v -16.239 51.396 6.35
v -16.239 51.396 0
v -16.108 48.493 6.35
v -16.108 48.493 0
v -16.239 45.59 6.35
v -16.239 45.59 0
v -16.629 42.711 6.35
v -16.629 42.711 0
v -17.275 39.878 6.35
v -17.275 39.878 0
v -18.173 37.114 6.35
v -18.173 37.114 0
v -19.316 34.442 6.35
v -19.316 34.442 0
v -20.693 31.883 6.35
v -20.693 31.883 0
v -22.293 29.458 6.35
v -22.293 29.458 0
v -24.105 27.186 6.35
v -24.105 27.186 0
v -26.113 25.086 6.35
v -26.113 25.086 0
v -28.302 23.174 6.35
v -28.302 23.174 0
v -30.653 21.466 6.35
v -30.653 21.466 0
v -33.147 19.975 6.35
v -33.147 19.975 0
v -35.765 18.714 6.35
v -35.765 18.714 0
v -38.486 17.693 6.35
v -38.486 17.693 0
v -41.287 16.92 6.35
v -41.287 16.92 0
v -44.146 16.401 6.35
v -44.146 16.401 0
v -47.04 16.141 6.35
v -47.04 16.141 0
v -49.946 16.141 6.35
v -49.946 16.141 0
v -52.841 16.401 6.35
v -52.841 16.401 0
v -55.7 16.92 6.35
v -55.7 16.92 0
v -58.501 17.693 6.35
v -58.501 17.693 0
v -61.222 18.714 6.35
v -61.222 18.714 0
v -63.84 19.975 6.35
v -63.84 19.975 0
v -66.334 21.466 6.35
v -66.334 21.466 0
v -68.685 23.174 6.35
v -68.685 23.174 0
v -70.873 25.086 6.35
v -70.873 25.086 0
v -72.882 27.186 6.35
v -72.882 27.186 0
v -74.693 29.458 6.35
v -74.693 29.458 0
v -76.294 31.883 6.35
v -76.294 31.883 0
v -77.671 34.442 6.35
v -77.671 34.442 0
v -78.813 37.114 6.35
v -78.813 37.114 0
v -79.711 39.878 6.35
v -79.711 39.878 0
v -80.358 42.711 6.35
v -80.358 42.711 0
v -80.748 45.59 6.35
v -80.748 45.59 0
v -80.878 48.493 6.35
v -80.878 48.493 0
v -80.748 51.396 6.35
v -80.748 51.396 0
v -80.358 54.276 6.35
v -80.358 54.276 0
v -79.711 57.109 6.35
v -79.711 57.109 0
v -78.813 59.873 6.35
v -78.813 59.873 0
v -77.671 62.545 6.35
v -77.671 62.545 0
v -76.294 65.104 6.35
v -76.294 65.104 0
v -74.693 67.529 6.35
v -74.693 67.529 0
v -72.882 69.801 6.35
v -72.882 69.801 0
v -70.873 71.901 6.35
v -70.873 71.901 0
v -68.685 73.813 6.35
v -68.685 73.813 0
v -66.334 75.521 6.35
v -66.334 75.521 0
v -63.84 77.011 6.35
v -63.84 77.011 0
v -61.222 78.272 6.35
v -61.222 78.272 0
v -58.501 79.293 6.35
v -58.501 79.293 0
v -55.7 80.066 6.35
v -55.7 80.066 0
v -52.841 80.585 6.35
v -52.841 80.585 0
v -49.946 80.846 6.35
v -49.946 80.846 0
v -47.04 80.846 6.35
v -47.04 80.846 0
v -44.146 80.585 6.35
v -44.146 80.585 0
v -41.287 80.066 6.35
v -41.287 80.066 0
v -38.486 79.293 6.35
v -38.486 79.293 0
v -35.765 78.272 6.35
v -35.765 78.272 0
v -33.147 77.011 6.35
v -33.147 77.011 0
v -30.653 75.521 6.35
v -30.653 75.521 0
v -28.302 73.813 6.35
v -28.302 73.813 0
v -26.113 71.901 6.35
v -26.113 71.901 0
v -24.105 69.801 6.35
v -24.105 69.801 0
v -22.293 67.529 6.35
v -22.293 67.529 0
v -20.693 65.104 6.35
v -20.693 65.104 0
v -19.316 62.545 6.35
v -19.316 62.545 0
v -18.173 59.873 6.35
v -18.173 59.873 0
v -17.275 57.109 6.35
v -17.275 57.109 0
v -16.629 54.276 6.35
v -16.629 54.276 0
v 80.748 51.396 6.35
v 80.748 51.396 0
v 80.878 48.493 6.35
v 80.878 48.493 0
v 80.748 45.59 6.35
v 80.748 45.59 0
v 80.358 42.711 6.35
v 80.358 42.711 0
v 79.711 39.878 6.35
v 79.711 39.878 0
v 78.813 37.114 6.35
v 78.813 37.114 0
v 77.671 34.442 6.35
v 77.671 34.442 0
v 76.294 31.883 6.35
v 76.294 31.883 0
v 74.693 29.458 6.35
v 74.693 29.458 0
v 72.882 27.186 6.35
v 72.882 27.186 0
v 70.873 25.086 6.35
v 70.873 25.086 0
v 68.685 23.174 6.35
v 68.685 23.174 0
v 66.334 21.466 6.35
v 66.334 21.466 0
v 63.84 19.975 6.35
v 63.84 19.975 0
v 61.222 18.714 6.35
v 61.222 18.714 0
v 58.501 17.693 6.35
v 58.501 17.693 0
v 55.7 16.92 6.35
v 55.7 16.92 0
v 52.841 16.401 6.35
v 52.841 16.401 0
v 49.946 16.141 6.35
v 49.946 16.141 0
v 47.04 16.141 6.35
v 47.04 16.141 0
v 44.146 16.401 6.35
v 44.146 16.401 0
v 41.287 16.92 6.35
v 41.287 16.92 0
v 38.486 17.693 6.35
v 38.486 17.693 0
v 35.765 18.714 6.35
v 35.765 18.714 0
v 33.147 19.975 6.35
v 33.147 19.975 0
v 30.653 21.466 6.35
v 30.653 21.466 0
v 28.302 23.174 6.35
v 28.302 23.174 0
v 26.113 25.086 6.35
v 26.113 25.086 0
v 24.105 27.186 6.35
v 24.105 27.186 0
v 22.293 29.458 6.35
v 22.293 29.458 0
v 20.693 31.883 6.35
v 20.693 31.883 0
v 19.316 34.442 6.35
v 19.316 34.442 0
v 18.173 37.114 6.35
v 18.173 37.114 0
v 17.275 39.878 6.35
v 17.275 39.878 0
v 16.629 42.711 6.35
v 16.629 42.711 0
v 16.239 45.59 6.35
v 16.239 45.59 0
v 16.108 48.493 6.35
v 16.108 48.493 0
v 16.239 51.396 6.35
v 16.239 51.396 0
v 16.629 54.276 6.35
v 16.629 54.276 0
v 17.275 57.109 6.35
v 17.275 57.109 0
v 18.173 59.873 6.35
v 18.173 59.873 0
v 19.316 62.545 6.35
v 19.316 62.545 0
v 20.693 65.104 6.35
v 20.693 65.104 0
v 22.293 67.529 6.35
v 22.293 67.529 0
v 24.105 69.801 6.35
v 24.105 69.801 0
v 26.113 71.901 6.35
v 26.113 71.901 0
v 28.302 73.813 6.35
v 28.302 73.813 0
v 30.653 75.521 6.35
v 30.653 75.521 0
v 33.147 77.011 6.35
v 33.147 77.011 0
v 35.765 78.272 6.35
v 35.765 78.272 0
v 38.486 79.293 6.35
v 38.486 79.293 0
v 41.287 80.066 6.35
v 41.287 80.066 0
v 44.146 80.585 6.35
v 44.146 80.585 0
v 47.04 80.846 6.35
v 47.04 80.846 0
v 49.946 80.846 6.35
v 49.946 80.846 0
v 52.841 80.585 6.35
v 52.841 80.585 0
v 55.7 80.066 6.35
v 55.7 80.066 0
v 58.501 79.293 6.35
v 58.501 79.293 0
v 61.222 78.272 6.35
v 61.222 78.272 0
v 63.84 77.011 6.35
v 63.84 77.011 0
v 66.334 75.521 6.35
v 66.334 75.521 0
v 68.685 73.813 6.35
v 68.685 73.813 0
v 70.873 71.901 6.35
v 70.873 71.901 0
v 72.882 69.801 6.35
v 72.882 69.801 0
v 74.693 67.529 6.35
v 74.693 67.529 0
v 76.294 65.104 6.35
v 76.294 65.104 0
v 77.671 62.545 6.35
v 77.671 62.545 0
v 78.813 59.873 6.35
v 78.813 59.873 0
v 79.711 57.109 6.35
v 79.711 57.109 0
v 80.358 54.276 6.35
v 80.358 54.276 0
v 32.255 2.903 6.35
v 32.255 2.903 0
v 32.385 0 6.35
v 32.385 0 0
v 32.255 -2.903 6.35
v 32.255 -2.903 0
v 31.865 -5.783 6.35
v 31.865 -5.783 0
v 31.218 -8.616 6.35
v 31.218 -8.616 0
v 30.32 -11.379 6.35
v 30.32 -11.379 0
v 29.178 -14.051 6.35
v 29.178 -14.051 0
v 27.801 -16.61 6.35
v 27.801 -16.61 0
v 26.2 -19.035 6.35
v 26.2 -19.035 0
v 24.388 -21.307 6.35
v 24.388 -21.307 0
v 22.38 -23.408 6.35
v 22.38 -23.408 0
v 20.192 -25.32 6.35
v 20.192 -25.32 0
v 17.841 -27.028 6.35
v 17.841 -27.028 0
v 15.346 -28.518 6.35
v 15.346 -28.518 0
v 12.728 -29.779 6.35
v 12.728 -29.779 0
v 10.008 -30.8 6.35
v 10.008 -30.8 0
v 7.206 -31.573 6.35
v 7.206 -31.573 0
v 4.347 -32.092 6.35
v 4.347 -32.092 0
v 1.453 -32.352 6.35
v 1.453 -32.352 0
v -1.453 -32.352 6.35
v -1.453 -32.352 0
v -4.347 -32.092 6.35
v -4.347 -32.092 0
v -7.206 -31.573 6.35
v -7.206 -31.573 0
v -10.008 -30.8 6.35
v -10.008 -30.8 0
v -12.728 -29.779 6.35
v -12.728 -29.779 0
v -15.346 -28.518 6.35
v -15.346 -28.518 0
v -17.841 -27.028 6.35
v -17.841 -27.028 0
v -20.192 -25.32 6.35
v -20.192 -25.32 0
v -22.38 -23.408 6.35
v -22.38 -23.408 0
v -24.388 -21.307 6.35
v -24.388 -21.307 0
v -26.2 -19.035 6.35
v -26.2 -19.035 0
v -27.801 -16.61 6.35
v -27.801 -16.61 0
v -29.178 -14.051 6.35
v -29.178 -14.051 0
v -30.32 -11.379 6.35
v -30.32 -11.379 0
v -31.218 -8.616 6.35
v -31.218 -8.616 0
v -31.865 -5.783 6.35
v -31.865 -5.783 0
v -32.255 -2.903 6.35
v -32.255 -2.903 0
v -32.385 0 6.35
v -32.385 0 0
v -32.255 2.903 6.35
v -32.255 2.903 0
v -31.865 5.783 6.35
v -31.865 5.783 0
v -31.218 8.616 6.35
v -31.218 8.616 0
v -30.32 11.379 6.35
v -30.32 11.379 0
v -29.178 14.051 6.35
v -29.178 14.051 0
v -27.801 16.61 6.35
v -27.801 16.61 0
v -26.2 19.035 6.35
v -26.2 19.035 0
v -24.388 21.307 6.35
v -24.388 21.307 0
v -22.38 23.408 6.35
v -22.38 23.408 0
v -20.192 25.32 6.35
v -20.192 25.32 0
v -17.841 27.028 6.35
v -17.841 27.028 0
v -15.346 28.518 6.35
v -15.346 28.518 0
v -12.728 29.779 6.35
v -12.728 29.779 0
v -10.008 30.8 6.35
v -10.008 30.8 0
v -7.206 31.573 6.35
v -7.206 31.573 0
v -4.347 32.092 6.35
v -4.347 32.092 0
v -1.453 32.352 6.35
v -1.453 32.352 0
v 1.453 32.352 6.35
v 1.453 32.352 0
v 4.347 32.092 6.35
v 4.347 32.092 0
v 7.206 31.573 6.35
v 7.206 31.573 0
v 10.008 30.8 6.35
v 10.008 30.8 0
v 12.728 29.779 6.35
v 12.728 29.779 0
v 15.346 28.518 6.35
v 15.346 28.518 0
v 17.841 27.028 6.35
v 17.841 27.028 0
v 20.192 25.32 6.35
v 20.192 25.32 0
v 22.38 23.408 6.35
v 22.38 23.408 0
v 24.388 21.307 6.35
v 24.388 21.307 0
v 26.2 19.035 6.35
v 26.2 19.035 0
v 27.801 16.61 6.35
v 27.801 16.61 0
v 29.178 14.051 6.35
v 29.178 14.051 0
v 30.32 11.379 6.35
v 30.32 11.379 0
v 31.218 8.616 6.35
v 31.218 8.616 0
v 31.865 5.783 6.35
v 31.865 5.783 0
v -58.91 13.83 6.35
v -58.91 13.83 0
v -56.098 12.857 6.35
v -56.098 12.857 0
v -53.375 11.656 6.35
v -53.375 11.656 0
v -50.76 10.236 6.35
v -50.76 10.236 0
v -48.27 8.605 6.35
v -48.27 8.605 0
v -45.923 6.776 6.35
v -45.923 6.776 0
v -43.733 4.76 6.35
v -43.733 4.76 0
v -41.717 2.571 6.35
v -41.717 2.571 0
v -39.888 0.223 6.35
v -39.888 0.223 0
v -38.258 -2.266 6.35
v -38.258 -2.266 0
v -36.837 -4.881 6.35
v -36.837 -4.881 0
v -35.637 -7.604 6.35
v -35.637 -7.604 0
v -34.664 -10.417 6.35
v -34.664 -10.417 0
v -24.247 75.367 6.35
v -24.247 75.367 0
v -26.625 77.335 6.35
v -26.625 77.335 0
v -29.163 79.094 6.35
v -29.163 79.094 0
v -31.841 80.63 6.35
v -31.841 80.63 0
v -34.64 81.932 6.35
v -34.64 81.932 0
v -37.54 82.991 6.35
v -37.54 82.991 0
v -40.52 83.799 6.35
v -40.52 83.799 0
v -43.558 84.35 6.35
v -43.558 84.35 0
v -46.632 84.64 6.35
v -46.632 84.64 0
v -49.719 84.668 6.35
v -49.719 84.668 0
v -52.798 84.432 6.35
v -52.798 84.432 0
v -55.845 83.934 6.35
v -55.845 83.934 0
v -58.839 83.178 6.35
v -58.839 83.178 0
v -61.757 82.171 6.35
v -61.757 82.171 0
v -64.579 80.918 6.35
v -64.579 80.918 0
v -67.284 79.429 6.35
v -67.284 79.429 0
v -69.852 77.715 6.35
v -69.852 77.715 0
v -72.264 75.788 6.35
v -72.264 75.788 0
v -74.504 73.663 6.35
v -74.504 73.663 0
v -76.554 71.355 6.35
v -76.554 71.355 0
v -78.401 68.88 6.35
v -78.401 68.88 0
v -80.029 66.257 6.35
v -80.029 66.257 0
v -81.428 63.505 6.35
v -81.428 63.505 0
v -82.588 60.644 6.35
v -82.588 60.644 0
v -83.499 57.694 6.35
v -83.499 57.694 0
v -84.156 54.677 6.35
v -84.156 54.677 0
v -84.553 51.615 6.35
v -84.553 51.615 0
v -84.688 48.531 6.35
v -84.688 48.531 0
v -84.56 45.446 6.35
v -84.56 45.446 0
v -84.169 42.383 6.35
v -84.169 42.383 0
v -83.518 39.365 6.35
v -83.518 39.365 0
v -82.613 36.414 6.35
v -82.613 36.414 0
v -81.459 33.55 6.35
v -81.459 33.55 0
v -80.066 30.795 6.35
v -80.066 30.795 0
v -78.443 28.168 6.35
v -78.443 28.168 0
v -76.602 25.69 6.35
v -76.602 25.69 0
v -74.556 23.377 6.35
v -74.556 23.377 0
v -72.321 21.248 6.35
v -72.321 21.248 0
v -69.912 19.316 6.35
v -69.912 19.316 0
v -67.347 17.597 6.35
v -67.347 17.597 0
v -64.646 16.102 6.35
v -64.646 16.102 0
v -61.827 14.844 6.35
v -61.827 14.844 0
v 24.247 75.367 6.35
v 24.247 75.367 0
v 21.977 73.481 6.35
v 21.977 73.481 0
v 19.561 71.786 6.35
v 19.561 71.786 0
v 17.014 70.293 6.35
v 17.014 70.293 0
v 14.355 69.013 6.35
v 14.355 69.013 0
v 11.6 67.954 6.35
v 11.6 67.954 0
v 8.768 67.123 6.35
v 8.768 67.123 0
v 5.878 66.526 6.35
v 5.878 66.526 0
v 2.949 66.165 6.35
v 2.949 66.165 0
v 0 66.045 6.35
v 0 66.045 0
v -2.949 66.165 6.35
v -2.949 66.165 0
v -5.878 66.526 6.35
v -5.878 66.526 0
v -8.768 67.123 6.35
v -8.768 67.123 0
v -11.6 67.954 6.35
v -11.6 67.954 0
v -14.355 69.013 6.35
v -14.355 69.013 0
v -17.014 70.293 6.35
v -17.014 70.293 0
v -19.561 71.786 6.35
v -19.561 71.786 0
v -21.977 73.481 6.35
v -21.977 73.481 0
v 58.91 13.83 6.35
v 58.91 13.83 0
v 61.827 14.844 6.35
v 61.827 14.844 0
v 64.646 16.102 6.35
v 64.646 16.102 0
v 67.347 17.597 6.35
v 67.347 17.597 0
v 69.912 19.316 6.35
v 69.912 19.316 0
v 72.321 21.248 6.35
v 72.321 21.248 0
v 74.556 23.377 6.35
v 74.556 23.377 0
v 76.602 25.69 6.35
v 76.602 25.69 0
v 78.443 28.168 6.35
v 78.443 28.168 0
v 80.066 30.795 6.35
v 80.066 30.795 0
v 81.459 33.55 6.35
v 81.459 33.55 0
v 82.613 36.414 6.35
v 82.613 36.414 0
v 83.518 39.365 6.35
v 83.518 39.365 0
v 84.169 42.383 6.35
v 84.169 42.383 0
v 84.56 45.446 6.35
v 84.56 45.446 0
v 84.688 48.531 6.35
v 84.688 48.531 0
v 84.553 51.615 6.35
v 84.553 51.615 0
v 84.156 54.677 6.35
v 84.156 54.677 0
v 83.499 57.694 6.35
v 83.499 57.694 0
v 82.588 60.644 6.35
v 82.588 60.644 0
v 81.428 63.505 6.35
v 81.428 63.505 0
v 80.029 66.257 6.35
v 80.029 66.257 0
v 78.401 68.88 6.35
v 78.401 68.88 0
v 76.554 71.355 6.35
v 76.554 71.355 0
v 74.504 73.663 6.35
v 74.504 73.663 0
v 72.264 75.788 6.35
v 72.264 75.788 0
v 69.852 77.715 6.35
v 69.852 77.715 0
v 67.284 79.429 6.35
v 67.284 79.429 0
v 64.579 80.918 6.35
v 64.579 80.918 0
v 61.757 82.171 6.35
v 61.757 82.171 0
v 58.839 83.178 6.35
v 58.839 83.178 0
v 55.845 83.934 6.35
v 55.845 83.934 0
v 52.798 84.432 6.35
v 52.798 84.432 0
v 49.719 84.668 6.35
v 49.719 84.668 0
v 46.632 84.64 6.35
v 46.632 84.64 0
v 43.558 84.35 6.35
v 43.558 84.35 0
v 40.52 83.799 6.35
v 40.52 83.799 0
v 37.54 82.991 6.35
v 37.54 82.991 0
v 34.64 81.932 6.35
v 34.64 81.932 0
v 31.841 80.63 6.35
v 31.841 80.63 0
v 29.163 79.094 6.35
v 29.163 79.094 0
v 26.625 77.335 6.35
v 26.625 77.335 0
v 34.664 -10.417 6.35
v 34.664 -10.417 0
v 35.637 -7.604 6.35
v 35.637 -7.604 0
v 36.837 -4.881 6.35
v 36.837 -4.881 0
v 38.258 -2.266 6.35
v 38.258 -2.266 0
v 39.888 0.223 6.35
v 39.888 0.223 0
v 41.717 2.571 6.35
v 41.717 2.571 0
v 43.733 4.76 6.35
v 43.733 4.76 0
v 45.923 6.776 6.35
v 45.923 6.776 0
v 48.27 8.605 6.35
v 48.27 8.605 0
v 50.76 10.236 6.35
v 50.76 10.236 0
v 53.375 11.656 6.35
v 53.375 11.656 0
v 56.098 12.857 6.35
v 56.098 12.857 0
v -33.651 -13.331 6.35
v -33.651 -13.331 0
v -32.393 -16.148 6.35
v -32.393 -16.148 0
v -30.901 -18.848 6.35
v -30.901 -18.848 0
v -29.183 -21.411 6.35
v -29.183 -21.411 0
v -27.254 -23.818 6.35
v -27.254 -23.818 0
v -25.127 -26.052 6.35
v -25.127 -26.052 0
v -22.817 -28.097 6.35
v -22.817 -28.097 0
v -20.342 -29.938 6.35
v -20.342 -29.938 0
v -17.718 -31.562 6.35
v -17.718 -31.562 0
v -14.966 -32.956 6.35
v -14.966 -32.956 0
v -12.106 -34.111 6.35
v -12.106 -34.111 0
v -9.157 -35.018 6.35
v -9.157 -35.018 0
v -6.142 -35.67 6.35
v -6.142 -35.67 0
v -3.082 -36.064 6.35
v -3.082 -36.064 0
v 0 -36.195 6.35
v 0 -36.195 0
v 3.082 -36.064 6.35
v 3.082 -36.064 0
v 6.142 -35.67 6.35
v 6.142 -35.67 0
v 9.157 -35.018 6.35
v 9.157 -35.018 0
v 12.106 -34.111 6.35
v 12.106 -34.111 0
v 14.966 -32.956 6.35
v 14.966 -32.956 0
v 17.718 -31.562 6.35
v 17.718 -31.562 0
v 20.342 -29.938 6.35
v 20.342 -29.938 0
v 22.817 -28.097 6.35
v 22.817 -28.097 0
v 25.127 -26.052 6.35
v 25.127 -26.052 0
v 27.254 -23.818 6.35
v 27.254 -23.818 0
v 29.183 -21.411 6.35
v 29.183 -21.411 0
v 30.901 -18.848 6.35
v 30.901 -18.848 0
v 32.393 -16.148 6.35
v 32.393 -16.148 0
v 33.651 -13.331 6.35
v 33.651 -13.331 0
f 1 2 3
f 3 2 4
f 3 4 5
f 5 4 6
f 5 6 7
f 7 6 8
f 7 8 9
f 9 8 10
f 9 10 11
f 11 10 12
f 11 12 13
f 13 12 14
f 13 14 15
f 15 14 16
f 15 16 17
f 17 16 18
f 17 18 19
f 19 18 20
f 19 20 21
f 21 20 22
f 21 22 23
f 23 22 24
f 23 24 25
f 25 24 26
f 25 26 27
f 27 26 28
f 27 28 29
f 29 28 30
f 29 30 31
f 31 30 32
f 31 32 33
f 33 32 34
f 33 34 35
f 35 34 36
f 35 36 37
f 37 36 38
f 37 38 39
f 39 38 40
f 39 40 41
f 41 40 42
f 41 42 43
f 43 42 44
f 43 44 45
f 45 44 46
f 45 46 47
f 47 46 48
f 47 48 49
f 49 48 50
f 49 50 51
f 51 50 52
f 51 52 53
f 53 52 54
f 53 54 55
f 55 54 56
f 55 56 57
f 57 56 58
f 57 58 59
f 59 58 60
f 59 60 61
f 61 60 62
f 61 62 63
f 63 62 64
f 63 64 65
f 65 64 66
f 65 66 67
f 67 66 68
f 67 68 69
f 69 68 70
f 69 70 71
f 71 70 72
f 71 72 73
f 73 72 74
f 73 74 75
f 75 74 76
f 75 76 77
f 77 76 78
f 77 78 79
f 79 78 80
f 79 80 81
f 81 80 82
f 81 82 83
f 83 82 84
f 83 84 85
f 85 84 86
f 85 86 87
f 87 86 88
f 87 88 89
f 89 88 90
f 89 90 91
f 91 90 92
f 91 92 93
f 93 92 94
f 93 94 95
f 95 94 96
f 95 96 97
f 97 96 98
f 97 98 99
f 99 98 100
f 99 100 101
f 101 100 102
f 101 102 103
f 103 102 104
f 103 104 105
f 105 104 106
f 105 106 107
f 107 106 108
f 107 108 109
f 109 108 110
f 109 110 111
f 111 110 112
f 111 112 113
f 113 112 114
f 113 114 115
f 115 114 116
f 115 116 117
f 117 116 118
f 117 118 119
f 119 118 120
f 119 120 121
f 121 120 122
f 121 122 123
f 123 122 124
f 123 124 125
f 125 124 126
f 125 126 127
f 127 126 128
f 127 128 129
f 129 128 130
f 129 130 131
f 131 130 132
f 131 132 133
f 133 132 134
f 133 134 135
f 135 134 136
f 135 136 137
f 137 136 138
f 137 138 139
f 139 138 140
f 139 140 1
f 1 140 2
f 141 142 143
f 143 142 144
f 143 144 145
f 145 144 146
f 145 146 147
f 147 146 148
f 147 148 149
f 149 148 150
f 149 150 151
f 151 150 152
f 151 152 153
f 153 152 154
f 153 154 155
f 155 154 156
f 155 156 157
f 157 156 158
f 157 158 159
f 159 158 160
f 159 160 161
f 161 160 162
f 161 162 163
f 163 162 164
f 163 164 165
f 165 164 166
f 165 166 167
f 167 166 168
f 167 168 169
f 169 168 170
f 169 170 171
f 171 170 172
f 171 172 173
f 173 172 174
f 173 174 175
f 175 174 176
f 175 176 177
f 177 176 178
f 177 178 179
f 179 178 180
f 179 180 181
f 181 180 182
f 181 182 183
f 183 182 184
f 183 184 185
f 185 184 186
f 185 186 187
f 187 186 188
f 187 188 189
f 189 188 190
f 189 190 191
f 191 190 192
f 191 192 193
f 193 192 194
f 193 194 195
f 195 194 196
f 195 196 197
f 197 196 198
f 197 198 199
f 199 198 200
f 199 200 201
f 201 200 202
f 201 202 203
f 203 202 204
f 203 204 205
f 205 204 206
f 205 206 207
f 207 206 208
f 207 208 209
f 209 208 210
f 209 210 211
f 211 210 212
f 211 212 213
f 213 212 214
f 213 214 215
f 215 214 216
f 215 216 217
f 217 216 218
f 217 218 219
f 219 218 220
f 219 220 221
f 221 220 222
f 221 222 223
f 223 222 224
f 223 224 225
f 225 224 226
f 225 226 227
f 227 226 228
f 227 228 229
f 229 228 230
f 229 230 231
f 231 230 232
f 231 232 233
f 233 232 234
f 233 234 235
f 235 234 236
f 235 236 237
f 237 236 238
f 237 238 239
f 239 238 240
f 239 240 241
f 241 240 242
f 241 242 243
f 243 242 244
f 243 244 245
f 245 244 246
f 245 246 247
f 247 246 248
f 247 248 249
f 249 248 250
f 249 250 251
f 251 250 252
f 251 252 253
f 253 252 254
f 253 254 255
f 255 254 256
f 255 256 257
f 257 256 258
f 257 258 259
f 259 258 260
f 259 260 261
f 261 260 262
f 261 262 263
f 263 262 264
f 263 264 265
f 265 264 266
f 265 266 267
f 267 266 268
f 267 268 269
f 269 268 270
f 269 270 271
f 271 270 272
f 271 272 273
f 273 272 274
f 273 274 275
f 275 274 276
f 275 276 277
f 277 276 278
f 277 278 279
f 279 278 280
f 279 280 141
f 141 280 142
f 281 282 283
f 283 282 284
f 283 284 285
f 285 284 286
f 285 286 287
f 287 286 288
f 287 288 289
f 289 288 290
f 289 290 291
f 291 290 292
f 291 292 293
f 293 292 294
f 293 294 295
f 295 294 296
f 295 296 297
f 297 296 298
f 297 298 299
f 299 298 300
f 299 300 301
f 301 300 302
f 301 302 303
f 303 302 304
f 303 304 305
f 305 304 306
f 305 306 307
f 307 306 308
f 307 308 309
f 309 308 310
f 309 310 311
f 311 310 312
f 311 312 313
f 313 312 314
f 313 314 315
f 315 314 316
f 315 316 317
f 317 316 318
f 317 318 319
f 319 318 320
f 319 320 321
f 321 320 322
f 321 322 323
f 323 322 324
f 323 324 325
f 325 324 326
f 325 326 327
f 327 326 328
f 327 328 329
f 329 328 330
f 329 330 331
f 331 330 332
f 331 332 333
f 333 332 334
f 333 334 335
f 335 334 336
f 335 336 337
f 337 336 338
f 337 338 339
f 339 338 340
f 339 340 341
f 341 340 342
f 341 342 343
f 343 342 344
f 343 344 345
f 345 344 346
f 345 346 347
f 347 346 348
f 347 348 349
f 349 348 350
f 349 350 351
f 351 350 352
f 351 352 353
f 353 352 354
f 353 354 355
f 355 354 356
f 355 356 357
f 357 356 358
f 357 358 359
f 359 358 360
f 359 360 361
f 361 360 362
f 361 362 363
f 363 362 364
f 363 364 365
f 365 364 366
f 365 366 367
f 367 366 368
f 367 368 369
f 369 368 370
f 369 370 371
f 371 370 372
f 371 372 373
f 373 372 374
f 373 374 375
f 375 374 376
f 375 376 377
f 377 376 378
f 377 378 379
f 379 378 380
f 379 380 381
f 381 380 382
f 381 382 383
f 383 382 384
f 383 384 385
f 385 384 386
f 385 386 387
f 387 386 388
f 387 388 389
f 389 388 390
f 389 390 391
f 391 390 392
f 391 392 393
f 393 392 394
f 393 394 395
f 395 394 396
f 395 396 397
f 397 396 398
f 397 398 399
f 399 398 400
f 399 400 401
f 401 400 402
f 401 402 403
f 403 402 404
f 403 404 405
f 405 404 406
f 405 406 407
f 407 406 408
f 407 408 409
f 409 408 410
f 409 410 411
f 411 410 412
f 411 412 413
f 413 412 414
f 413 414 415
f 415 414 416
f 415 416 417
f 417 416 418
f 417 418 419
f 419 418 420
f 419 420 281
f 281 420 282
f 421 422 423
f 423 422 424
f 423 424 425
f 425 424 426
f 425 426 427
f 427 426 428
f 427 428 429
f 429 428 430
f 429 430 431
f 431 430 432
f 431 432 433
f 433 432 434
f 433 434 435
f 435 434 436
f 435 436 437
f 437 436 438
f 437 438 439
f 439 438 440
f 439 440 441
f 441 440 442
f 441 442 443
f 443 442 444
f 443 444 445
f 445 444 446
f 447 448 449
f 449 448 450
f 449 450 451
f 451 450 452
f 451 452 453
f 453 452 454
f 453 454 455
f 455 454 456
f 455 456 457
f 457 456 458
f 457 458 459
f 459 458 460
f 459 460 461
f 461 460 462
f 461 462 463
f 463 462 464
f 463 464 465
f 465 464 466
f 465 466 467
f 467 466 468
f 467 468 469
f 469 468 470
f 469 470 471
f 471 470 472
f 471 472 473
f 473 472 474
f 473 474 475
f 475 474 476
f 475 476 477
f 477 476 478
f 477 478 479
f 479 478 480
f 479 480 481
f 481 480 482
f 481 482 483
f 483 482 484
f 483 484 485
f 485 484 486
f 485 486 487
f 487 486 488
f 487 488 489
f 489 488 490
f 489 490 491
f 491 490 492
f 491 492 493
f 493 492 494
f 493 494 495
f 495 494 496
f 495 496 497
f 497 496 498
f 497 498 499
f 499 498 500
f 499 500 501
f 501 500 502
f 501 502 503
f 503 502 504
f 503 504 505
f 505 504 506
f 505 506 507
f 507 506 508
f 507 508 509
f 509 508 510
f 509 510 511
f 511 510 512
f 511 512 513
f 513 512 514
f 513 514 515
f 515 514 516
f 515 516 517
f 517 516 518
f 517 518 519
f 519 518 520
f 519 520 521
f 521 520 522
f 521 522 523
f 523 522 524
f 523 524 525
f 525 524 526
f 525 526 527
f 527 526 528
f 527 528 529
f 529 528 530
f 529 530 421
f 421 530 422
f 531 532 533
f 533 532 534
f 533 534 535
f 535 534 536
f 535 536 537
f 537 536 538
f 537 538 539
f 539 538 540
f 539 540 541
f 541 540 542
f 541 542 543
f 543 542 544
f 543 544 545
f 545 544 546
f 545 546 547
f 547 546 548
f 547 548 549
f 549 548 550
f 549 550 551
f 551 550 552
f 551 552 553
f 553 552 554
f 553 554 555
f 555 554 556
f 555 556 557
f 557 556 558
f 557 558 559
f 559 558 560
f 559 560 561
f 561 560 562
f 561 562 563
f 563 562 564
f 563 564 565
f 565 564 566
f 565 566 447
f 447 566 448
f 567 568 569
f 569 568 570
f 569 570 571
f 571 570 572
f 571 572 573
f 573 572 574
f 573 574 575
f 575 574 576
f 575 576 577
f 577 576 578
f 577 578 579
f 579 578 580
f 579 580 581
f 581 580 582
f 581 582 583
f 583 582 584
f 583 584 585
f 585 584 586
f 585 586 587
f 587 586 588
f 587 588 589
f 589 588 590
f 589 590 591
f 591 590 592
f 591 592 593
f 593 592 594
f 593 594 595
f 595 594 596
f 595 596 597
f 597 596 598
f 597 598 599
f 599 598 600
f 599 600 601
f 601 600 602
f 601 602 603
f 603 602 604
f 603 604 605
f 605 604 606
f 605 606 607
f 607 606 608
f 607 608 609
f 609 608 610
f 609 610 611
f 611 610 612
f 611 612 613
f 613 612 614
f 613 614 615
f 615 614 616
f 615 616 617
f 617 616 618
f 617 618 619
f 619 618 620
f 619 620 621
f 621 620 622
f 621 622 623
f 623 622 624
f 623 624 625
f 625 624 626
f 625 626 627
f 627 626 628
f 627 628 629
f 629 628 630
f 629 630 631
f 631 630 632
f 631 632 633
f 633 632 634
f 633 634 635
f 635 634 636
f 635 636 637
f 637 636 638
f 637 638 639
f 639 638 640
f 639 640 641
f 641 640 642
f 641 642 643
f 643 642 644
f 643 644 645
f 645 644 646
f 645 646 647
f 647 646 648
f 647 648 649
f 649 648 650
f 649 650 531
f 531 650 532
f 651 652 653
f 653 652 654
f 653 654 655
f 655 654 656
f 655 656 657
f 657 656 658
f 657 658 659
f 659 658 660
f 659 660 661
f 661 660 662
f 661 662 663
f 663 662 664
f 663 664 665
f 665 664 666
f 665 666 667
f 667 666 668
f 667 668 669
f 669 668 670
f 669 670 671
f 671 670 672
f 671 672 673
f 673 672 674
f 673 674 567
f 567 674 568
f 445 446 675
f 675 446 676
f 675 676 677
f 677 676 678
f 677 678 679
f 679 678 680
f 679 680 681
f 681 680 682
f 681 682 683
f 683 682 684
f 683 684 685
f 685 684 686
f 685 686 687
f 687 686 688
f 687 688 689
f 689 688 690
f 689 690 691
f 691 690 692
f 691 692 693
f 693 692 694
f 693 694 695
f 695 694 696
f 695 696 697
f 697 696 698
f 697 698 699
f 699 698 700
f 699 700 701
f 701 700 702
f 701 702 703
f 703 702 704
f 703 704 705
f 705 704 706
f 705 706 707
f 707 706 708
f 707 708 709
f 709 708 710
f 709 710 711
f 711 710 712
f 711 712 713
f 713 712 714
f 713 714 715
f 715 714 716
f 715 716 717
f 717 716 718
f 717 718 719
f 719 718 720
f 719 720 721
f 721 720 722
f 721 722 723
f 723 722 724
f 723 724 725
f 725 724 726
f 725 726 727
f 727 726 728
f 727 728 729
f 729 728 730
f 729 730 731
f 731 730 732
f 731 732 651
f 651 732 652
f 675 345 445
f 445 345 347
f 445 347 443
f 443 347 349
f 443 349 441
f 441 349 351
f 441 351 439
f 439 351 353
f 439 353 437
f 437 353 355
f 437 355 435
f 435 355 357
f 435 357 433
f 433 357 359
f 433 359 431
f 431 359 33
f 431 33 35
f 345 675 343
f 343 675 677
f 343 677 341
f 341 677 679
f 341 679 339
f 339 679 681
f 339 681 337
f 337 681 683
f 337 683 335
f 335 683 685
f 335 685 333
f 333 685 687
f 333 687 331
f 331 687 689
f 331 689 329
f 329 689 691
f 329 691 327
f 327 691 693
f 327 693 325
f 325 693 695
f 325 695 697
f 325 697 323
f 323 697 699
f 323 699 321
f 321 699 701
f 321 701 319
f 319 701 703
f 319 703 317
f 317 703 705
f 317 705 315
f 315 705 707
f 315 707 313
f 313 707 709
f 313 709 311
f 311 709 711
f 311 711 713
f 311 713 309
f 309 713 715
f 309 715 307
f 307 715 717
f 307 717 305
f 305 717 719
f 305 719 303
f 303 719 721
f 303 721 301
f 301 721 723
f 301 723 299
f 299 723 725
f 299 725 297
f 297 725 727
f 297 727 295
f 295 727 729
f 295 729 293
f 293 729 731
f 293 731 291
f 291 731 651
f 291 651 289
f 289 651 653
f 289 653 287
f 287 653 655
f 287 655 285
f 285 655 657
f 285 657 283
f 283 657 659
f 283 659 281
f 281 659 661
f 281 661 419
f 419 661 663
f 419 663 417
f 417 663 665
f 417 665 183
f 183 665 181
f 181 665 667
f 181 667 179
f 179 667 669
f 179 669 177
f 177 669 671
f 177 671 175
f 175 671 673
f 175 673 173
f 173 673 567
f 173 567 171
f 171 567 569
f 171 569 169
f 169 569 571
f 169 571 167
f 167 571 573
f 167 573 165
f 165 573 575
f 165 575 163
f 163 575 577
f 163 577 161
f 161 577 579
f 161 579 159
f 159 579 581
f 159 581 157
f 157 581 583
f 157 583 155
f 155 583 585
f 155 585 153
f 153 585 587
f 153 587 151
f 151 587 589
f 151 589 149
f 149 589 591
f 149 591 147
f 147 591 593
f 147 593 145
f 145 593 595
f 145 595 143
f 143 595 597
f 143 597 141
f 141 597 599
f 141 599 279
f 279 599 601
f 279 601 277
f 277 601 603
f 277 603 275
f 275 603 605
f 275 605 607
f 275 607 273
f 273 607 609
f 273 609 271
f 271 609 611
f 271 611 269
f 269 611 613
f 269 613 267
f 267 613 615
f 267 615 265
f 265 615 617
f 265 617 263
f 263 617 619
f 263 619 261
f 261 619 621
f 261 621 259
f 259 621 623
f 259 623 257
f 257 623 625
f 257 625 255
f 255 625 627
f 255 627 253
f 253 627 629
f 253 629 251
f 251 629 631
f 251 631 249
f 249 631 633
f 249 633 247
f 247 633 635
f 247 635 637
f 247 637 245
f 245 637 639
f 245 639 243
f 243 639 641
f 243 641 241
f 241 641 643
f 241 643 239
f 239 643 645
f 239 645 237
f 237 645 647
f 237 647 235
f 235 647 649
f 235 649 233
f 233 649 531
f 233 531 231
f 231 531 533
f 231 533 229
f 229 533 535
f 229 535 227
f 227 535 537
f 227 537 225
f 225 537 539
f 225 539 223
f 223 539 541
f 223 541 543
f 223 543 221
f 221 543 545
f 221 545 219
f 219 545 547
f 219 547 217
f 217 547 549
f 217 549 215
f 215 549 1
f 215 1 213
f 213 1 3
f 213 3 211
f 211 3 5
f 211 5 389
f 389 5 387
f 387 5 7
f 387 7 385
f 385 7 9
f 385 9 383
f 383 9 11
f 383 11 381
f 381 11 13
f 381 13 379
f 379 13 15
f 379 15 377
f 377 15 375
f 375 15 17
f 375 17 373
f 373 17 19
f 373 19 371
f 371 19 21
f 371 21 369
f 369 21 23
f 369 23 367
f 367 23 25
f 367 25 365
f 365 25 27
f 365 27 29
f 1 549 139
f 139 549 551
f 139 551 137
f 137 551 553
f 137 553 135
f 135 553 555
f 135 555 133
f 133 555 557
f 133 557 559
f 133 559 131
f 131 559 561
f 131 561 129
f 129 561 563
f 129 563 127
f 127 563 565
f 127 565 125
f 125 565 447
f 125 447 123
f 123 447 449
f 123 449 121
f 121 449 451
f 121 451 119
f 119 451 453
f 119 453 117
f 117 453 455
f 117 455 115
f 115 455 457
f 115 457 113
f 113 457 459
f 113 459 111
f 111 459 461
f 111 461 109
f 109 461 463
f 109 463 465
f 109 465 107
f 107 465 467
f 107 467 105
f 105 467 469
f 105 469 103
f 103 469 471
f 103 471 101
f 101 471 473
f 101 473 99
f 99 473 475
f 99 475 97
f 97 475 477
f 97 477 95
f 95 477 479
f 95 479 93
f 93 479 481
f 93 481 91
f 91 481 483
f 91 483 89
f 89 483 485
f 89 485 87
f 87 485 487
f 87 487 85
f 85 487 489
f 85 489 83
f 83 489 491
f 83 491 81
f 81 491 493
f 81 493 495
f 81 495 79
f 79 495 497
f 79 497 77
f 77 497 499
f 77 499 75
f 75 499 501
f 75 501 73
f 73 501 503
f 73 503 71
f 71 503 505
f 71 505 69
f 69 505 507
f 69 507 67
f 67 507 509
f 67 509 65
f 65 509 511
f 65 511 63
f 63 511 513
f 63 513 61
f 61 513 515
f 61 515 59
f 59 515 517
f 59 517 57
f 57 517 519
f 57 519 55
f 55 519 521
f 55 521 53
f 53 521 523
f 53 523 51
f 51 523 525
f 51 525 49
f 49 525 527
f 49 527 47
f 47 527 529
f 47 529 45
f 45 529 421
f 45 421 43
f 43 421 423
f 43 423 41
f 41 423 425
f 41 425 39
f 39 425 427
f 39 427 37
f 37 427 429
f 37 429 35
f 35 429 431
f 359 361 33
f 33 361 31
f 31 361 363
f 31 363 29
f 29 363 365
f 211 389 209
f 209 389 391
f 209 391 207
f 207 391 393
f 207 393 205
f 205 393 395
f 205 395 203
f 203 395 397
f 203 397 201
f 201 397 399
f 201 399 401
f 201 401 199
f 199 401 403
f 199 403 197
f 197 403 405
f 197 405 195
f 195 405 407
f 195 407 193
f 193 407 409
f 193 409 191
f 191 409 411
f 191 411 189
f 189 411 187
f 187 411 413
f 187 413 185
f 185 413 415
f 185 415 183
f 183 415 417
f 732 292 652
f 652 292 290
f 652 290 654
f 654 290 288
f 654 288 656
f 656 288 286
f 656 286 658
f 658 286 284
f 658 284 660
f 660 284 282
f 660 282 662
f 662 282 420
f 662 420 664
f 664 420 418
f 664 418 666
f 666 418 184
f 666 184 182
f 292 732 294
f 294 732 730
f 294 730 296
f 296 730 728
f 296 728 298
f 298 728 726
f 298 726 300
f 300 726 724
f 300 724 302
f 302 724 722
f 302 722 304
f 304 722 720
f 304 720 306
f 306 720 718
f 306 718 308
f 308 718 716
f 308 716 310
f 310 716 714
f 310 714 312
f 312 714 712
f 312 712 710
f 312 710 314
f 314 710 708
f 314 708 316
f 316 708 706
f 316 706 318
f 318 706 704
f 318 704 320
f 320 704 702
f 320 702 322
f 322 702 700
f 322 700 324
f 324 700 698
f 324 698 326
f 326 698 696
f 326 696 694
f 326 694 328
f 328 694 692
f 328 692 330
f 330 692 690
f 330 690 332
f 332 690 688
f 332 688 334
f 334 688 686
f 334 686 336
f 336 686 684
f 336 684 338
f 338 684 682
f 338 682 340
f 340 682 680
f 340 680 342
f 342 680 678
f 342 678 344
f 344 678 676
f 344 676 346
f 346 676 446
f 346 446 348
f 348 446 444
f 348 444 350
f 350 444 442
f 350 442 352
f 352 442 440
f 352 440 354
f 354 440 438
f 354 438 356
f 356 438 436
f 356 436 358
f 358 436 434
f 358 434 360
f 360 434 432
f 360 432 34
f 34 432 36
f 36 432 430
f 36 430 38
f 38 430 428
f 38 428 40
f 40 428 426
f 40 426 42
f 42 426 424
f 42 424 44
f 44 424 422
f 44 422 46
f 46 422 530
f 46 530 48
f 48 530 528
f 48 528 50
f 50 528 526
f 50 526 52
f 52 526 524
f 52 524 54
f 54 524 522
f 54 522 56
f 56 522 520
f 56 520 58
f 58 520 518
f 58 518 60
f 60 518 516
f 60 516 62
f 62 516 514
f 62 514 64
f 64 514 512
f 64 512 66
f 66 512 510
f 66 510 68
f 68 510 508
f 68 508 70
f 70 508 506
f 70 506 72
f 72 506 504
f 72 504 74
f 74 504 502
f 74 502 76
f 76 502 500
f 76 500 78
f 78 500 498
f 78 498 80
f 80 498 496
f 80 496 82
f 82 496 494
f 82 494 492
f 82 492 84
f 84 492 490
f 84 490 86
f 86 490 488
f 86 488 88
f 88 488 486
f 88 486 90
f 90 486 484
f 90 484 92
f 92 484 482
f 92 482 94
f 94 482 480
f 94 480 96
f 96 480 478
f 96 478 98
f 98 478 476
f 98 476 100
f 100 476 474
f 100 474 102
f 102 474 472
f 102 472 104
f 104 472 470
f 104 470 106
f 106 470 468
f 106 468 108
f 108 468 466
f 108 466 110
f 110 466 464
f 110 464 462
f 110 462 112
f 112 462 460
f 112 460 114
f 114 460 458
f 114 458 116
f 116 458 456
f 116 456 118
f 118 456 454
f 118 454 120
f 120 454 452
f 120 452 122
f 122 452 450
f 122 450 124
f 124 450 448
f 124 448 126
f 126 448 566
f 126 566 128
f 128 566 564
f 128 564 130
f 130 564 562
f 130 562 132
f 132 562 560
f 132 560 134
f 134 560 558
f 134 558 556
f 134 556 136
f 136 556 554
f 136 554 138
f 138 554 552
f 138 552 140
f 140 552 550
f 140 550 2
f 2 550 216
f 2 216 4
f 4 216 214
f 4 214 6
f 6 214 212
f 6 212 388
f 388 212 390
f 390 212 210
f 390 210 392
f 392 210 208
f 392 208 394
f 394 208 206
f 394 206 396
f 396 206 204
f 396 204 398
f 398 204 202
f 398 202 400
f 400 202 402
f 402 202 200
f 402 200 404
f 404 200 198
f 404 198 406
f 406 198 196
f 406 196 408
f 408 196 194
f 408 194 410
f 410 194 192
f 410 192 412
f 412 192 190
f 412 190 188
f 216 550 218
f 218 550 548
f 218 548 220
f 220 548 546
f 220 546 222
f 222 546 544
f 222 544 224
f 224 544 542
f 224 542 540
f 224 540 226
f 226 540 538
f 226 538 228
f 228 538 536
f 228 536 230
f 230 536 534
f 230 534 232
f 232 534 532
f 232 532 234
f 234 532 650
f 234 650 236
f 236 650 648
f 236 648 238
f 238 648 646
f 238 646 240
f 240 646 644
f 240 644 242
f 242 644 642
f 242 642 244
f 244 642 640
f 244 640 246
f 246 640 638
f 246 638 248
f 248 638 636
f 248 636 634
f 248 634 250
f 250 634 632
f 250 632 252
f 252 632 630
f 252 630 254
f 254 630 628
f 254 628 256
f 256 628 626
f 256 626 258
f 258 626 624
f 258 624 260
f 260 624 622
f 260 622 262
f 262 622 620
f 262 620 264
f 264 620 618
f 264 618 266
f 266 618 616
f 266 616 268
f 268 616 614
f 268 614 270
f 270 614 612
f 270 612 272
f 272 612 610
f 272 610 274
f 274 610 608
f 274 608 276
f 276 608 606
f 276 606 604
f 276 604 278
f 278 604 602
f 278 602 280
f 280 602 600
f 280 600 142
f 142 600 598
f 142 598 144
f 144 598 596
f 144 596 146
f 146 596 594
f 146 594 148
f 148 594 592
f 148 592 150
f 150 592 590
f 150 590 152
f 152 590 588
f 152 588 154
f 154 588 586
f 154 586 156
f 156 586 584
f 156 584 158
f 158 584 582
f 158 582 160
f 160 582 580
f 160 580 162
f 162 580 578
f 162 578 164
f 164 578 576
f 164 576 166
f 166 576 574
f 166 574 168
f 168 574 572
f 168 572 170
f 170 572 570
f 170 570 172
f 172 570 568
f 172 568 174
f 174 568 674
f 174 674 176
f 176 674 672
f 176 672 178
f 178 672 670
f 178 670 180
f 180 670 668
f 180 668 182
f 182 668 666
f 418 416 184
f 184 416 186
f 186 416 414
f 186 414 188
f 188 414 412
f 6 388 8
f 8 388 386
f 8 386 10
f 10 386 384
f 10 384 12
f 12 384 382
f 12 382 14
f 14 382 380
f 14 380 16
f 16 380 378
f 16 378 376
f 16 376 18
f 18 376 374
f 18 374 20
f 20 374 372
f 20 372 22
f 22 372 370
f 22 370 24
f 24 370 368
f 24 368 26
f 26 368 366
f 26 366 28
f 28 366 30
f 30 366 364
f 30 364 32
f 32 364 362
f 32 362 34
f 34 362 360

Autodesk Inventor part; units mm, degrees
ref_plane "YZ Plane" through (0, 0, 0) normal (1, 0, 0) x (0, 1, 0)
ref_plane "XZ Plane" through (0, 0, 0) normal (0, 1, 0) x (-1, 0, 0)
ref_plane "XY Plane" through (0, 0, 0) normal (0, 0, 1) x (1, 0, 0)
sketch "Sketch1" plane through (0, 0, 0) normal (0, 0, 1) x (1, 0, 0)
  circle A0 centre (0, 0) radius 32.385
  circle A1 centre (-48.4934, 48.4934) radius 32.385
  circle A2 centre (48.4934, 48.4934) radius 32.385
  circle A3 centre (0, 0) radius 68.58 construction
  line L0 (-48.4934, 48.4934) -> (48.4934, 48.4934) construction
  circle A4 centre (-48.4934, -48.4934) radius 32.385 construction
  circle A5 centre (48.4934, -48.4934) radius 32.385 construction
  line L1 (-48.4934, 48.4934) -> (-48.4934, -48.4934) construction
  circle A6 centre (0, 0) radius 36.195
  circle A7 centre (-48.4934, 48.4934) radius 36.195
  circle A8 centre (48.4934, 48.4934) radius 36.195
  arc A9 (-24.2467, 75.3667) -> (24.2467, 75.3667) centre (0, 102.24) ccw
  arc A10 (-34.6636, -10.4169) -> (-58.9103, 13.8298) centre (-69.3272, -20.8338) ccw
  arc A11 (58.9103, 13.8298) -> (34.6636, -10.4169) centre (69.3272, -20.8338) ccw
  dimension "d0" = 137.16
  dimension "d1" = 64.77
extrude "Extrusion1" add sketch "Sketch1" along normal blind 6.35 contours A0 A8 A6 A7 | A0 A7 A6 A8 | A8 A6 | A7 A6 | A8 A6 | A6 A7 A9 A8 | A8 A11 A6 | A7 A6 | A6 A10 A7
properties part number "Flywheel Gearbox Holder"
